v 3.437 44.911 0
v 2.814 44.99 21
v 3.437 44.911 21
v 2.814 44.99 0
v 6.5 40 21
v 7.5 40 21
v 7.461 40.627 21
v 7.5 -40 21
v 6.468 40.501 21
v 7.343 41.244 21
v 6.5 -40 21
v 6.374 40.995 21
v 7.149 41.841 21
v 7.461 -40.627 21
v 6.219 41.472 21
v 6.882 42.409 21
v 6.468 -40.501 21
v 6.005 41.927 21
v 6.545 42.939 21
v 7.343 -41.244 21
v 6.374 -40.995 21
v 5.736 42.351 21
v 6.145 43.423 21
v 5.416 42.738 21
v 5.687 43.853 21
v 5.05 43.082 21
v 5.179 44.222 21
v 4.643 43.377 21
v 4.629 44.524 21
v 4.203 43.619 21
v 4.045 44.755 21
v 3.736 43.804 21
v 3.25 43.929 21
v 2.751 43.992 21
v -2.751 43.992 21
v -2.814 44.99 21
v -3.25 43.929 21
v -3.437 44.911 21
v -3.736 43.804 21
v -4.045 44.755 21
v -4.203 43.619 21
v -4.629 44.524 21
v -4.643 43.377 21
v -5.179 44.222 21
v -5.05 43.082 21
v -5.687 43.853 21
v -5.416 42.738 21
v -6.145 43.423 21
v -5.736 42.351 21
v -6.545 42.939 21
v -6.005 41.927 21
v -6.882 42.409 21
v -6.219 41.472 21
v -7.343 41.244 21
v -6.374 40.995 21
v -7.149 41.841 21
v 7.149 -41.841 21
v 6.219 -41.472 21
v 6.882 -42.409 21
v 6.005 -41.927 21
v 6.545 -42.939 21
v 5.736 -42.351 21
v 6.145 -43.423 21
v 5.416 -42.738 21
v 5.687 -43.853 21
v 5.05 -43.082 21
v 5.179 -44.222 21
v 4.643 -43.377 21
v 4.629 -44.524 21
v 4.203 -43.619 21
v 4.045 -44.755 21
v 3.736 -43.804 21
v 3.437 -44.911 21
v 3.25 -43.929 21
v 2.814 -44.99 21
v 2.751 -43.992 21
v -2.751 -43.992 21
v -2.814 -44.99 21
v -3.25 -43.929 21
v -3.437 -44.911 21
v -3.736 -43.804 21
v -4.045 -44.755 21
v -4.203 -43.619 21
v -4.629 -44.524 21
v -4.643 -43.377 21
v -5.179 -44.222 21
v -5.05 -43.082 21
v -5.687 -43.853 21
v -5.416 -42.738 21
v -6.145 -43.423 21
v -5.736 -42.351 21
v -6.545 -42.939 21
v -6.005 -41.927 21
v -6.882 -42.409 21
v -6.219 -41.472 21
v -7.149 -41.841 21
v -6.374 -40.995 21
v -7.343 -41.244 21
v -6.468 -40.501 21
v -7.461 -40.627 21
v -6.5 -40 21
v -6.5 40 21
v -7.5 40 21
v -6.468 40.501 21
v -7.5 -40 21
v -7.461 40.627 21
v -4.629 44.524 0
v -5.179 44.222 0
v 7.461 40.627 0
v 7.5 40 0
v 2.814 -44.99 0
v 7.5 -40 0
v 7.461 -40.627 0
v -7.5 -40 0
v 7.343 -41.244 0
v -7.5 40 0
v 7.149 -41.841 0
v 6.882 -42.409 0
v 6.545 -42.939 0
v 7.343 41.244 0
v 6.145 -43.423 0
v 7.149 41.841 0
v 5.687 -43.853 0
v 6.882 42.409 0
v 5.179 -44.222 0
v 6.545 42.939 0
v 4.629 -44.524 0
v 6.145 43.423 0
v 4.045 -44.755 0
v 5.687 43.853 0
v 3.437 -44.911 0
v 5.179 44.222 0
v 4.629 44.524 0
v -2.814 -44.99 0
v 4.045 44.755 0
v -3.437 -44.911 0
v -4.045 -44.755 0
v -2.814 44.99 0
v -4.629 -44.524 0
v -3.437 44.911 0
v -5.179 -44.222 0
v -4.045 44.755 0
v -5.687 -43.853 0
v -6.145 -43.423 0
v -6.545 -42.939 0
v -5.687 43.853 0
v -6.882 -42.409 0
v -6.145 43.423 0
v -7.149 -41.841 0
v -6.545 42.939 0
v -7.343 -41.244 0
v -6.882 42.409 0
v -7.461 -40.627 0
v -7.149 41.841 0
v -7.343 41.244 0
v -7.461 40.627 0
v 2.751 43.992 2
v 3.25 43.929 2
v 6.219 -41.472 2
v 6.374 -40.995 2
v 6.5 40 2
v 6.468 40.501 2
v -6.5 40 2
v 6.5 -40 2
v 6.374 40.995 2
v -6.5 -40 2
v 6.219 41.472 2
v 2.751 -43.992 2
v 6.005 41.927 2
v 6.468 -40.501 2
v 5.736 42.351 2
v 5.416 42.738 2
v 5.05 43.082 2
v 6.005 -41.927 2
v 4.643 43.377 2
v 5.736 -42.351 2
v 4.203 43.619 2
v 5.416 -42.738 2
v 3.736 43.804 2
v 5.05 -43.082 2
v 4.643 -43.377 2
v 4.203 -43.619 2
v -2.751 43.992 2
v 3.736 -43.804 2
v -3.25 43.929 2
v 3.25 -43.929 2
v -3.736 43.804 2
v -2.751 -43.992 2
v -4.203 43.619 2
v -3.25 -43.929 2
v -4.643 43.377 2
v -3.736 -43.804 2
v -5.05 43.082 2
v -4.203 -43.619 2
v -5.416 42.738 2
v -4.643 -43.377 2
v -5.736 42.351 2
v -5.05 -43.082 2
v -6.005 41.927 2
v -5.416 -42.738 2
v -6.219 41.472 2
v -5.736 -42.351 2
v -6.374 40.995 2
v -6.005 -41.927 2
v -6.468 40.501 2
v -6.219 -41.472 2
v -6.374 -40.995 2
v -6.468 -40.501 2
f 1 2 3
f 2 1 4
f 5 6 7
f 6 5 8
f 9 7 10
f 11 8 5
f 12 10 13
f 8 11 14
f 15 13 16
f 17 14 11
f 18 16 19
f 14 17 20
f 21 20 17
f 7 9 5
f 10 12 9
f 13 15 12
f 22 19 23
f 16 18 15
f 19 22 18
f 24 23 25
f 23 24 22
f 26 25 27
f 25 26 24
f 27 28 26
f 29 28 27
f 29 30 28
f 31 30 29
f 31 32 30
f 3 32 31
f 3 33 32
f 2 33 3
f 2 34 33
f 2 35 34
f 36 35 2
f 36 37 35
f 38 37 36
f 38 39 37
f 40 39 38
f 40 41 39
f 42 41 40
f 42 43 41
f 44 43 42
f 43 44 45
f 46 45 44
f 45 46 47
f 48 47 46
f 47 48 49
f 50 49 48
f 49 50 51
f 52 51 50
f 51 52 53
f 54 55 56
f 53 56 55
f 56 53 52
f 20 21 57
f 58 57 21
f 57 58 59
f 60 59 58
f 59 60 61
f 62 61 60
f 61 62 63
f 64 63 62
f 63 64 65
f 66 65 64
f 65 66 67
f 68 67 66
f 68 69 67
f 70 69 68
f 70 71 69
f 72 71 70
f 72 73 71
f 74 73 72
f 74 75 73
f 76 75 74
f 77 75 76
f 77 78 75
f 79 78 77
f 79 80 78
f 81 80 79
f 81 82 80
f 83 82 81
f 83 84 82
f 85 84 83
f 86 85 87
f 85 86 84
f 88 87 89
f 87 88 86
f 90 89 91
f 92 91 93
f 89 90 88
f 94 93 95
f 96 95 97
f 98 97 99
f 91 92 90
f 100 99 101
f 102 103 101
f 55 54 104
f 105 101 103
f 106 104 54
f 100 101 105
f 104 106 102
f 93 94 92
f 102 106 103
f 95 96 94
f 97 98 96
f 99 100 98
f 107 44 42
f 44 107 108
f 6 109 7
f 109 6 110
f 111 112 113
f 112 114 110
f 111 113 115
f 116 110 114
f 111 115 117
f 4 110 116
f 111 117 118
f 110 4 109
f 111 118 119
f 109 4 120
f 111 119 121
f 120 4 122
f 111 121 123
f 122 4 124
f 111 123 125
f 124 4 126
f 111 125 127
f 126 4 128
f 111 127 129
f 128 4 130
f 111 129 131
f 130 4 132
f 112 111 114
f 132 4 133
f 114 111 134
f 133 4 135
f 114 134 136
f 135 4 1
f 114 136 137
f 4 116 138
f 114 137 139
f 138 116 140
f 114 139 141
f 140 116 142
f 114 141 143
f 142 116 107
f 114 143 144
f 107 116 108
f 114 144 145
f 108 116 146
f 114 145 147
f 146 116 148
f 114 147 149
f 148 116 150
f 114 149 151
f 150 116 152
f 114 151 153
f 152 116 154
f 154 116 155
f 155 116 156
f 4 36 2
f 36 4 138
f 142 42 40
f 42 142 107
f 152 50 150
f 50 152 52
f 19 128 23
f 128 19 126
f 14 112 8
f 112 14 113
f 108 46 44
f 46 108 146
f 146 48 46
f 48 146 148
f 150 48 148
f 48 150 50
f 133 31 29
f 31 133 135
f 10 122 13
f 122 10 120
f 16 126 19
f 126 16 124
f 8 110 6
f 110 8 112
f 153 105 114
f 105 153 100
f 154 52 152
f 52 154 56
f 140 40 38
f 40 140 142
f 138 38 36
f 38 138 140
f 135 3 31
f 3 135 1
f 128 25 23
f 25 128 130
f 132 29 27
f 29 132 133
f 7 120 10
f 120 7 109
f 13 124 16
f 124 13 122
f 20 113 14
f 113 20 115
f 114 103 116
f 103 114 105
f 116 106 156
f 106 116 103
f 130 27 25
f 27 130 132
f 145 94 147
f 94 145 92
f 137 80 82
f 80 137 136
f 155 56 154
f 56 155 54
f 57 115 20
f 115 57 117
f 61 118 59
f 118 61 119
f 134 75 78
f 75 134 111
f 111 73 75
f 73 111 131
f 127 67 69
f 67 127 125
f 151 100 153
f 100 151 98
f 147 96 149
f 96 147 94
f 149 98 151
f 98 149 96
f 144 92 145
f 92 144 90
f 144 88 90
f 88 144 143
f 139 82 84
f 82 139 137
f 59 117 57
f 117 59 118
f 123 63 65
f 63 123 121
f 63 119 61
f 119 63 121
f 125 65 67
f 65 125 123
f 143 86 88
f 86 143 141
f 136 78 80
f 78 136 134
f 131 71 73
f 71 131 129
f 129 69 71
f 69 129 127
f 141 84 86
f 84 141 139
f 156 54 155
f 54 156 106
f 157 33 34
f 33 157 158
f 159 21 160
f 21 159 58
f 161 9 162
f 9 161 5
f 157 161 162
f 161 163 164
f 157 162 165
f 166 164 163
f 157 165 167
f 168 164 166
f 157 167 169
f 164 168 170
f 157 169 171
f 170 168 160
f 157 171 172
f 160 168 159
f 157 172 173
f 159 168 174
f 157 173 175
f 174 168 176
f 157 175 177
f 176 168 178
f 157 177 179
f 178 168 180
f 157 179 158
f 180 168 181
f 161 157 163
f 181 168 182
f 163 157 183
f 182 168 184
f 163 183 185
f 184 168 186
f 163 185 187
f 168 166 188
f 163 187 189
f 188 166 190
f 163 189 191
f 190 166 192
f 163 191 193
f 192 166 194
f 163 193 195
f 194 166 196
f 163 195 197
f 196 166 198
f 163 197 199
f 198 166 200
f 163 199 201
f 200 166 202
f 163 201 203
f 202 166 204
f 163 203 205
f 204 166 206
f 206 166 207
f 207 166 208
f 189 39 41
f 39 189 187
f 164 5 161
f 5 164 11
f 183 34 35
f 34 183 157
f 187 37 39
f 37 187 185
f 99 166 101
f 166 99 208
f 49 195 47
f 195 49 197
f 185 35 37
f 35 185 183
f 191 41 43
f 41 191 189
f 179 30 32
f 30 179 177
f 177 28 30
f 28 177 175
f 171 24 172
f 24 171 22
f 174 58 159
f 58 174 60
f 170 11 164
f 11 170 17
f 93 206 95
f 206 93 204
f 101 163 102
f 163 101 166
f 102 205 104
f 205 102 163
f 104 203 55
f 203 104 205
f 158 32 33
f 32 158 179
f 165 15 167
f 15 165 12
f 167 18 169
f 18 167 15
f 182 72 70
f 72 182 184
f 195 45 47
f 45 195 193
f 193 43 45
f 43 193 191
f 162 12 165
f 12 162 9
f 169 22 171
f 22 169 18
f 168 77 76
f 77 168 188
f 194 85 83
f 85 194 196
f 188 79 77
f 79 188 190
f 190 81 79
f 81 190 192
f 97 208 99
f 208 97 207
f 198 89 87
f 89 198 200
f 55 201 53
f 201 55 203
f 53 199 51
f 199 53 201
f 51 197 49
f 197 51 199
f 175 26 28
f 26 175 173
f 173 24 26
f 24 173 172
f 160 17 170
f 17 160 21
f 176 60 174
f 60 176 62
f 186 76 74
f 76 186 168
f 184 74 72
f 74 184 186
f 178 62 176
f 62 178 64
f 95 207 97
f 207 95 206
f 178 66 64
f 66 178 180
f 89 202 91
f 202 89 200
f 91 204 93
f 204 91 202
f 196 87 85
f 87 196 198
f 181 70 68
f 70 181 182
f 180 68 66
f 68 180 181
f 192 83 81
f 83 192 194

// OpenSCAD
$fn = 50;


difference() {
	union() {
		hull() {
			translate(v = [-2.5000000000, 40.0000000000, 0]) {
				cylinder(h = 21, r = 5);
			}
			translate(v = [2.5000000000, 40.0000000000, 0]) {
				cylinder(h = 21, r = 5);
			}
			translate(v = [-2.5000000000, -40.0000000000, 0]) {
				cylinder(h = 21, r = 5);
			}
			translate(v = [2.5000000000, -40.0000000000, 0]) {
				cylinder(h = 21, r = 5);
			}
		}
	}
	union() {
		translate(v = [0, 0, 2]) {
			hull() {
				translate(v = [-2.5000000000, 40.0000000000, 0]) {
					cylinder(h = 19, r = 4);
				}
				translate(v = [2.5000000000, 40.0000000000, 0]) {
					cylinder(h = 19, r = 4);
				}
				translate(v = [-2.5000000000, -40.0000000000, 0]) {
					cylinder(h = 19, r = 4);
				}
				translate(v = [2.5000000000, -40.0000000000, 0]) {
					cylinder(h = 19, r = 4);
				}
			}
		}
	}
}
